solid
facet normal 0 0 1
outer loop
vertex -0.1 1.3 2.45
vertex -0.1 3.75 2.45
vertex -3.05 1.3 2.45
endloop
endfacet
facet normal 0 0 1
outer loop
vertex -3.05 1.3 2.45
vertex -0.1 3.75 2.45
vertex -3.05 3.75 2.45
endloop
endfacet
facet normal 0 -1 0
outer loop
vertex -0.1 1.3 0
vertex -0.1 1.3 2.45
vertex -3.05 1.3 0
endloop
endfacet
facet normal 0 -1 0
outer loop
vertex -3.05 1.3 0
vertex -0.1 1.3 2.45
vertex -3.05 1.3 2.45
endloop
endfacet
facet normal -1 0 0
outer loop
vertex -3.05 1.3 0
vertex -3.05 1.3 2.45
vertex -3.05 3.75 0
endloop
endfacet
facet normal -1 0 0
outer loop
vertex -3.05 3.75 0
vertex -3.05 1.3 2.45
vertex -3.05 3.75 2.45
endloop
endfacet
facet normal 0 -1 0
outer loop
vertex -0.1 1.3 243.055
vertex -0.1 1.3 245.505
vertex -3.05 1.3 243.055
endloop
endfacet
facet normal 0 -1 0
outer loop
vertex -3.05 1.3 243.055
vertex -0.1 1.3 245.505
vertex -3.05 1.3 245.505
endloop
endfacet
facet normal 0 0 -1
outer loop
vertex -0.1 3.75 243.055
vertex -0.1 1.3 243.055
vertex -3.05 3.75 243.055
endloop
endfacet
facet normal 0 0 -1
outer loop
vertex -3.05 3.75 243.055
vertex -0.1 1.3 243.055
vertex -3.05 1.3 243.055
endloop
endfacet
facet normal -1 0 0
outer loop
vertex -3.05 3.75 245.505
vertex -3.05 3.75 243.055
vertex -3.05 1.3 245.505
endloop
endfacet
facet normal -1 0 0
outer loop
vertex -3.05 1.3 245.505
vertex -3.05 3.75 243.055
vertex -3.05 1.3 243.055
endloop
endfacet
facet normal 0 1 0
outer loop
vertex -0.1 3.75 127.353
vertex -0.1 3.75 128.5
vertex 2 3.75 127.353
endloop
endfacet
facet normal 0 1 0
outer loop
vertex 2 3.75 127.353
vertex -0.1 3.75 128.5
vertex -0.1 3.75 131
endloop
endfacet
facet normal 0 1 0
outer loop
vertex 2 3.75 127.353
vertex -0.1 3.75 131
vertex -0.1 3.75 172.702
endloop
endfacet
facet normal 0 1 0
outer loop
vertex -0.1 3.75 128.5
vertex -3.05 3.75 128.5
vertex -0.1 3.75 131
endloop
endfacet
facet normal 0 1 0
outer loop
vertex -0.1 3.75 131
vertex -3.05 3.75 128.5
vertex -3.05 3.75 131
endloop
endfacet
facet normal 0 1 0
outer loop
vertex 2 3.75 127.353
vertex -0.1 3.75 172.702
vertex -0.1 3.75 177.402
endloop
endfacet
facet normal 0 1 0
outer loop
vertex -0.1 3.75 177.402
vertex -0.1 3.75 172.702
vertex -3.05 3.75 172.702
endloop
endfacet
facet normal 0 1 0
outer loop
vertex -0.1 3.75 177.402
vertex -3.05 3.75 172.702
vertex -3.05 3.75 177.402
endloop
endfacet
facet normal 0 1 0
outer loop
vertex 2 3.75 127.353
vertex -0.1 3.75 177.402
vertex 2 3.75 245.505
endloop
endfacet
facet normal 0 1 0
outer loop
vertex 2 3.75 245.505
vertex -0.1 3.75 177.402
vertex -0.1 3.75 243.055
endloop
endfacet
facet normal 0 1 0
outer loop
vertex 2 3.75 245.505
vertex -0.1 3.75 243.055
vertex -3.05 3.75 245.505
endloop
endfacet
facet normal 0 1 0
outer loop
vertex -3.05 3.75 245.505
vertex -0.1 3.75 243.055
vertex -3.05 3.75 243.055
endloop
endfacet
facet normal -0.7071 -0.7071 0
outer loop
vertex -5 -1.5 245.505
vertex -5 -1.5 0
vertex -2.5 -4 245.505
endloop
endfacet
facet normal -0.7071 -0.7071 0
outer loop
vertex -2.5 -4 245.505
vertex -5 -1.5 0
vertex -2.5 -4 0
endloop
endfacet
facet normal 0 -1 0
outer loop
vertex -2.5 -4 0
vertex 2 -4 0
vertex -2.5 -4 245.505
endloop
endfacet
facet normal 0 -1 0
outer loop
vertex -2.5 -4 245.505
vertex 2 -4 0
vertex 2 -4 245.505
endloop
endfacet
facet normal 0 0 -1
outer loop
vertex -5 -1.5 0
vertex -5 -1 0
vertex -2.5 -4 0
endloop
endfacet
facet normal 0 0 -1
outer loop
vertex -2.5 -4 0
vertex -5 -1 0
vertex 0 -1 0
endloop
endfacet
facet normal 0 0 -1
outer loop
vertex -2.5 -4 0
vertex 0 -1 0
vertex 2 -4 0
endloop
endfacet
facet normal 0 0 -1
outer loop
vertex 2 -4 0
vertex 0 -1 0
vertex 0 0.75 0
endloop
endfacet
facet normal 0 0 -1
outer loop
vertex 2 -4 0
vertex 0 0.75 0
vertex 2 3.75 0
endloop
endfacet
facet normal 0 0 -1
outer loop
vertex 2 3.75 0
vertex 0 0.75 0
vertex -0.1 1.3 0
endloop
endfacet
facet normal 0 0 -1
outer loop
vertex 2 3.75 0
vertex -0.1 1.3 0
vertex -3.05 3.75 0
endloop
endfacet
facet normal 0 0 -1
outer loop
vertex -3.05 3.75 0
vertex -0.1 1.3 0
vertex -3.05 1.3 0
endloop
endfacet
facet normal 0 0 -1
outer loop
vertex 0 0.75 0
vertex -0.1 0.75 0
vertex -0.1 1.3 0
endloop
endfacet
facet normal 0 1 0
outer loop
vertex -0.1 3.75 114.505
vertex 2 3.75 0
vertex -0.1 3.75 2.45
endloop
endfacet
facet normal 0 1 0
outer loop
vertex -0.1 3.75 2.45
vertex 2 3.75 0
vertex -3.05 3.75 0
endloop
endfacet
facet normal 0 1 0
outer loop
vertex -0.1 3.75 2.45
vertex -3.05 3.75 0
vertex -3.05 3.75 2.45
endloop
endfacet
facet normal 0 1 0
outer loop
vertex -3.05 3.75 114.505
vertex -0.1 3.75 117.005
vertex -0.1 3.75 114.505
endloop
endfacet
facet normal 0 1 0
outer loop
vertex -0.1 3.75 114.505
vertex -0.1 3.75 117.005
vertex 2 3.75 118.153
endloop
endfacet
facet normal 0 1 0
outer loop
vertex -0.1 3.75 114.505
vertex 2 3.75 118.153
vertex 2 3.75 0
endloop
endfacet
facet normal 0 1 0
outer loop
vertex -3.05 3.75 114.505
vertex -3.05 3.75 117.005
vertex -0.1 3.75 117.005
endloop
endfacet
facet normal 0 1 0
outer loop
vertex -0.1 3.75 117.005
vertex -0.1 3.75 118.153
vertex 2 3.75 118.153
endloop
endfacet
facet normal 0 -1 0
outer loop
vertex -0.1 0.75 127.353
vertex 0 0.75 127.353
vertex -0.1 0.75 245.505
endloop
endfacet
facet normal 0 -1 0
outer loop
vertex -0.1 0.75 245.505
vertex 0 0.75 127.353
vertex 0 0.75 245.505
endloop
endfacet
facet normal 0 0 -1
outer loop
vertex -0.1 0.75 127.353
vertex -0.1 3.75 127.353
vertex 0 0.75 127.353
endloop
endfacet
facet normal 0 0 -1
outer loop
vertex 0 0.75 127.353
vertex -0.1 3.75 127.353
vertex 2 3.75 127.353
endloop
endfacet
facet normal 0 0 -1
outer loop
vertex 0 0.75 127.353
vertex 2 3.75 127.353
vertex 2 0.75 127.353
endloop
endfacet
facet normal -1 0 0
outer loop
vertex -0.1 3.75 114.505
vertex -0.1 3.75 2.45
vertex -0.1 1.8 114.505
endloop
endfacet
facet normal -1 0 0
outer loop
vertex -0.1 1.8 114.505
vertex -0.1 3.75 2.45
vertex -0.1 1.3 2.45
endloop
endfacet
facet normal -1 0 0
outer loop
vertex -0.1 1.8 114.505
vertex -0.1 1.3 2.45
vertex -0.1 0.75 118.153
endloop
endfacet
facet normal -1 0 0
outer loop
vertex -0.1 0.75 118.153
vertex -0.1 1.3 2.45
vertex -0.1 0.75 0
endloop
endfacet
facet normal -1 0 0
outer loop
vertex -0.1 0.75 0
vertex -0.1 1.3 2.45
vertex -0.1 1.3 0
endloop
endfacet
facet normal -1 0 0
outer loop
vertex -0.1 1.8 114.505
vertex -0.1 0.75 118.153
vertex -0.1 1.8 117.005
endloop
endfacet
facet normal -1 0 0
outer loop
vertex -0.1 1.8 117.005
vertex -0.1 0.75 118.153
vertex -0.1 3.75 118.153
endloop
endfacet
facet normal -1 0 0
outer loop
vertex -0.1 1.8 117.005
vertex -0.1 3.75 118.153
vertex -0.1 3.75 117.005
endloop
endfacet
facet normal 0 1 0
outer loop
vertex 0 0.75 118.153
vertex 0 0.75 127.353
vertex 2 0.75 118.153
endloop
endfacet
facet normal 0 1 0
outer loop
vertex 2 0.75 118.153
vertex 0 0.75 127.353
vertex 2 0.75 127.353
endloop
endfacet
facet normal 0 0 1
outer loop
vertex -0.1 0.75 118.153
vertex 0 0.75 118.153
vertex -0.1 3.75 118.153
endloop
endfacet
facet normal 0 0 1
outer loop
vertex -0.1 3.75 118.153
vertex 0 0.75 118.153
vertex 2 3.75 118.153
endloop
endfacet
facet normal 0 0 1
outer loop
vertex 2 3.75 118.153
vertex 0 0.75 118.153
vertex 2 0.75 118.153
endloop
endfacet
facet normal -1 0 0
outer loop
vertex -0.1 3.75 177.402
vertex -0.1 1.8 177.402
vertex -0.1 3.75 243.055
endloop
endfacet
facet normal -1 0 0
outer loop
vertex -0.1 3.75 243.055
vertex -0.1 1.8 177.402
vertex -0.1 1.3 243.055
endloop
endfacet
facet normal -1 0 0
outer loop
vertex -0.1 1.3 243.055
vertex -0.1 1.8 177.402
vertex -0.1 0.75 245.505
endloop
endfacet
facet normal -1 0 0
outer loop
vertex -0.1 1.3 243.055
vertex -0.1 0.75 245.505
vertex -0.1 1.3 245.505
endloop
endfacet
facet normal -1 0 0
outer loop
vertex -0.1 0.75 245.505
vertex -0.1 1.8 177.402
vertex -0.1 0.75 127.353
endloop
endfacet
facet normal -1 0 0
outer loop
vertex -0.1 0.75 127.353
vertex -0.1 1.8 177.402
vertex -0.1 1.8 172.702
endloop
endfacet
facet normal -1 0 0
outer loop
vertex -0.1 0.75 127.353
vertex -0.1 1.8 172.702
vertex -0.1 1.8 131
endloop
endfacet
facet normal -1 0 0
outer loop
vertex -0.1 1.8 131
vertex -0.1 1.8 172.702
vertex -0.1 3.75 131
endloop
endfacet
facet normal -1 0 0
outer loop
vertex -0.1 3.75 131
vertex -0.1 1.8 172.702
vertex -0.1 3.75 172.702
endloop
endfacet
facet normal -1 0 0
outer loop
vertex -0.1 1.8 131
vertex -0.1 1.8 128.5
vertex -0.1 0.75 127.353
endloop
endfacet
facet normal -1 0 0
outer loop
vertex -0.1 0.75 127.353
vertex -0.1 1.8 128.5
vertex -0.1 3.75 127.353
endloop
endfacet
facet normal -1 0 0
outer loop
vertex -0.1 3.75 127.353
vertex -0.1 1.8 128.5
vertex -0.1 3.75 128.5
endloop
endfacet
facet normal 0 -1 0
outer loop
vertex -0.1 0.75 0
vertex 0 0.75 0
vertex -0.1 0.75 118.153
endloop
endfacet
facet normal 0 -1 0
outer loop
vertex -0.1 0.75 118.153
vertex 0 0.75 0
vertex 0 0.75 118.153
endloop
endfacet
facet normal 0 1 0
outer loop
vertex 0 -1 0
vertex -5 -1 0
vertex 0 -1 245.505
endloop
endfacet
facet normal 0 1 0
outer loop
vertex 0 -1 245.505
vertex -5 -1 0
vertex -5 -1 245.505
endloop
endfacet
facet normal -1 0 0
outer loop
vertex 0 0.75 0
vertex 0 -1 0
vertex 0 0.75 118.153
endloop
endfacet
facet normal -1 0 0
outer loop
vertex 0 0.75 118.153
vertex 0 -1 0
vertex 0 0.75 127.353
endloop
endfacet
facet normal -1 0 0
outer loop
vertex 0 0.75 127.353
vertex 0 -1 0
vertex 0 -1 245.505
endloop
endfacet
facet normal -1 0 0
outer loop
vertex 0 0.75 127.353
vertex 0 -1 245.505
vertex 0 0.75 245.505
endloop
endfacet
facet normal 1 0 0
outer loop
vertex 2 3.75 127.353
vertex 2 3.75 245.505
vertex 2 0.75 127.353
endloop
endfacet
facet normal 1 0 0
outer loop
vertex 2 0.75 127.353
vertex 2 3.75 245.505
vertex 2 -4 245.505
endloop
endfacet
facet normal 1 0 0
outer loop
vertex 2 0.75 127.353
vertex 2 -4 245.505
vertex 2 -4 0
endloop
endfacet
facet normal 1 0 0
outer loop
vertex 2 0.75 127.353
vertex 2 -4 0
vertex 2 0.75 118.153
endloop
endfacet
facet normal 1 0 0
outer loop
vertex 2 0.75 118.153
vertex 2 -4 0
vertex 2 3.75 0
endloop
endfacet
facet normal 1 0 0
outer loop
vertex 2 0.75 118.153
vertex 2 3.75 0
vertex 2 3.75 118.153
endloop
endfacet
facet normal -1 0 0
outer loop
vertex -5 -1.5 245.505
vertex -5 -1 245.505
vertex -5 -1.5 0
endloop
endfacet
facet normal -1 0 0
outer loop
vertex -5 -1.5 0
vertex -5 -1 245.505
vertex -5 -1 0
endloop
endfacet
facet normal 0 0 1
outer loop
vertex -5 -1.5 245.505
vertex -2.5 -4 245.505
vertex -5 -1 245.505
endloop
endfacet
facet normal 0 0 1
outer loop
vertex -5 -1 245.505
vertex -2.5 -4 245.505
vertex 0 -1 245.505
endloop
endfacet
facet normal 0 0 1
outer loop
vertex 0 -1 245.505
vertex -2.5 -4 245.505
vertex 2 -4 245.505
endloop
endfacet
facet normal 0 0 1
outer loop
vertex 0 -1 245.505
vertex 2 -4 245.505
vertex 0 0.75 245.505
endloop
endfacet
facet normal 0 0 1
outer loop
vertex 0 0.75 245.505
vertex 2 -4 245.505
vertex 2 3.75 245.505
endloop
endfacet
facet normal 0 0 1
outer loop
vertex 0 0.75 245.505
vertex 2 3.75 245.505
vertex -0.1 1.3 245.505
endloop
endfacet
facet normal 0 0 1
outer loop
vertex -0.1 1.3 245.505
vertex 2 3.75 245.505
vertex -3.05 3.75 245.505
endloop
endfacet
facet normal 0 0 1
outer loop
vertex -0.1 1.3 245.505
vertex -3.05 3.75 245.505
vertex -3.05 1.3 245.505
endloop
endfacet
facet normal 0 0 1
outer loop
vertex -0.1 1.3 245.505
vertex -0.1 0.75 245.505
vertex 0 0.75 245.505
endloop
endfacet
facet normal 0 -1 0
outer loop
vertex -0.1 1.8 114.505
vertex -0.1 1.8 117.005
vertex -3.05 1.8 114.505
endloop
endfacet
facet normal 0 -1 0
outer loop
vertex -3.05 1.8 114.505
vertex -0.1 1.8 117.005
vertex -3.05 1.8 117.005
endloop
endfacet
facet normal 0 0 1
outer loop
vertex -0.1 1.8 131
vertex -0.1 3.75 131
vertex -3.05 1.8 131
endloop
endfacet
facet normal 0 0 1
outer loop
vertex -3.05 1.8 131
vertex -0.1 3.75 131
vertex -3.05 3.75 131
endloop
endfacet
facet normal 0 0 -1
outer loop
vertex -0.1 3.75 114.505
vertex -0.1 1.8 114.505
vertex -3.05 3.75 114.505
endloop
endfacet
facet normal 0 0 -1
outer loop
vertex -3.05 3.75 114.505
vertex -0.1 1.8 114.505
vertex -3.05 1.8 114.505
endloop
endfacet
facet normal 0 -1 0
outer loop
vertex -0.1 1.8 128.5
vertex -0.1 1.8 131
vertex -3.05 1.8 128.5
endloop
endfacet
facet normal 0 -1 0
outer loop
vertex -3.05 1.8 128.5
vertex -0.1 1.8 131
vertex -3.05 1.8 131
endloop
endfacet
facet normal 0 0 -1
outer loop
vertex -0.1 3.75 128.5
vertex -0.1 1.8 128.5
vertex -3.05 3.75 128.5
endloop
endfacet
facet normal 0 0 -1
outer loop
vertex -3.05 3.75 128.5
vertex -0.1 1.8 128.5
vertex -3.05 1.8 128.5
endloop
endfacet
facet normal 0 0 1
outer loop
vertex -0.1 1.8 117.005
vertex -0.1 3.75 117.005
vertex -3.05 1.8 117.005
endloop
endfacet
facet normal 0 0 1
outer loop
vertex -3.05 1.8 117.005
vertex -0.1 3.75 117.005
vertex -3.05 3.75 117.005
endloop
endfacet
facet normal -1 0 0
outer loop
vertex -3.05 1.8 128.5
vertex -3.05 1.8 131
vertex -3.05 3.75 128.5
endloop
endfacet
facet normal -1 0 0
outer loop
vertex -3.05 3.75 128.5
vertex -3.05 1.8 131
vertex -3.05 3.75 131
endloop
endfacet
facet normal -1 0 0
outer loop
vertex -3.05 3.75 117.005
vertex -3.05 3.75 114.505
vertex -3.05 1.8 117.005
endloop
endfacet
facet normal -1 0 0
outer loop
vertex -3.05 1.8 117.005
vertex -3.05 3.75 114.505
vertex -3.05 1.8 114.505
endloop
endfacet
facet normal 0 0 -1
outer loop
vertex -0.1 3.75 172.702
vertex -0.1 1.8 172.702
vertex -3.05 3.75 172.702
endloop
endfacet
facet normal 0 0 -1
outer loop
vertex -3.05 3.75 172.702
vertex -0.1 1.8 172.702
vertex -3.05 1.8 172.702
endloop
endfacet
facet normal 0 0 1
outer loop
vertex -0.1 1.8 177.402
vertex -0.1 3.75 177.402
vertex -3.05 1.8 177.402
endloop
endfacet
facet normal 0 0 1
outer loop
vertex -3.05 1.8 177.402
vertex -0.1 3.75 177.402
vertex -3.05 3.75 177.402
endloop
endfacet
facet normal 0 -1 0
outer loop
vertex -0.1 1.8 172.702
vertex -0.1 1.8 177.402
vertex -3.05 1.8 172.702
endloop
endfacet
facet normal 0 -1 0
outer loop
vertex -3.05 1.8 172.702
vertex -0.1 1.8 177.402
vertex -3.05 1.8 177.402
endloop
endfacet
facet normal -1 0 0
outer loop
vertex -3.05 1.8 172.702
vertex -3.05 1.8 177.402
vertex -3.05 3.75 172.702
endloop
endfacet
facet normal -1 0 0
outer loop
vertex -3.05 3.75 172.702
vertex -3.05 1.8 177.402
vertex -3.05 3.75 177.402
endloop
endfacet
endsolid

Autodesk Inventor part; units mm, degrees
ref_plane "YZ Plane" through (0, 0, 0) normal (1, 0, 0) x (0, 1, 0)
ref_plane "XZ Plane" through (0, 0, 0) normal (0, 1, 0) x (-1, 0, 0)
ref_plane "XY Plane" through (0, 0, 0) normal (0, 0, 1) x (1, 0, 0)
sketch "Sketch1" plane through (0, 0, 0) normal (0, 0, 1) x (1, 0, 0)
  line L0 (0, 3.75) -> (2, 3.75)
  line L1 (2, 3.75) -> (2, -4)
  line L2 (2, -4) -> (0, -4)
  line L3 (0, -4) -> (0, 3.75) construction
  line L4 (0, -4) -> (-5, -4)
  line L5 (-5, -4) -> (-5, -1)
  line L6 (-5, -1) -> (0, -1)
  line L7 (0, 3.75) -> (-1, 3.75)
  line L8 (-1, 3.75) -> (-1, 0.75)
  line L9 (-1, 0.75) -> (0, 0.75)
  line L10 (0, 0.75) -> (0, 3.75) construction
  line L11 (0, 0.75) -> (0, -1)
  point P0 (0, 0)
  point P1 (0, -0.125)
  point P2 (1, 3.75)
  dimension "d0" = 4
  dimension "d1" = 2
  dimension "d5" = 5
  dimension "d6" = 1.75
  dimension "d7" = 3
  dimension "d11" = 3
  dimension "d12" = 3
extrude "Extrusion1" add sketch "Sketch1" along normal blind 245.505
sketch "Sketch2" plane through (-1, 3.75, 245.505) normal (0, 1, 0) x (1, 0, 0)
  line L0 (3, 245.505) -> (3, 0) construction
  line L1 (3, 122.7525) -> (1, 122.7525) construction
  line L2 (1, 245.505) -> (1, 0) construction
  line L3 (3, 127.3525) -> (1, 127.3525)
  line L4 (1, 127.3525) -> (1, 118.1525) construction
  line L5 (1, 118.1525) -> (3, 118.1525) construction
  line L6 (3, 118.1525) -> (3, 127.3525)
  line L7 (3, 122.7525) -> (1, 122.7525) construction
  line L8 (3, 118.1525) -> (1, 118.1525)
  line L9 (1, 127.3525) -> (0, 127.3525)
  line L10 (0, 245.505) -> (0, 0) projected
  line L11 (0, 127.3525) -> (0, 118.1525)
  line L12 (0, 118.1525) -> (1, 118.1525)
  point P0 (0, 118.1525)
  dimension "d13" = 9.2
extrude "Extrusion2" cut sketch "Sketch2" against normal up to surface (3 mm away)
sketch "Sketch3" plane through (-1, 0.75, 0) normal (-1, 0, 0) x (0, 0, 1)
  line L0 (118.1525, 0) -> (118.1525, 3) projected
  line L1 (0, 3) -> (118.1525, 3) projected
  line L2 (0, 3) -> (0, 0) projected
  line L3 (0, 0) -> (118.1525, 0) projected
  line L4 (127.3525, 3) -> (127.3525, 0) projected
  line L5 (127.3525, 0) -> (245.505, 0) projected
  line L6 (245.505, 3) -> (245.505, 0) projected
  line L7 (127.3525, 3) -> (245.505, 3) projected
  point P0 (0, -0.75)
extrude "Extrusion3" cut sketch "Sketch3" against normal blind 0.9
chamfer "Chamfer1" distance 2.5 angle 45 1 edges at (-5, -4, 122.7525)
sketch "Sketch4" plane through (-0.1, 0.75, 0) normal (-1, 0, 0) x (0, 0, 1)
  line L0 (0, 3) -> (118.1525, 3) projected
  line L1 (0, 3) -> (2.45, 3)
  line L2 (2.45, 3) -> (2.45, 0.55)
  line L3 (2.45, 0.55) -> (0, 0.55)
  line L4 (0, 0.55) -> (0, 3)
  line L5 (127.3525, 3) -> (245.505, 3) projected
  line L6 (245.505, 3) -> (243.055, 3)
  line L7 (243.055, 3) -> (243.055, 0.55)
  line L8 (243.055, 0.55) -> (245.505, 0.55)
  line L9 (245.505, 0.55) -> (245.505, 3)
  line L10 (0, 3) -> (2.45, 3)
  line L11 (2.45, 3) -> (2.45, 0.55)
  line L12 (245.505, 3) -> (243.055, 3)
  line L13 (243.055, 3) -> (243.055, 0.55)
  point P0 (0, -0.75)
  dimension "d21" = 2.45
  dimension "d22" = 2.45
  dimension "d23" = 2.45
  dimension "d24" = 2.45
extrude "Extrusion4" add sketch "Sketch4" along normal blind 2.95
sketch "Sketch5" plane through (-0.1, 0.75, 0) normal (-1, 0, 0) x (0, 0, 1)
  line L0 (114.505, 2.85) -> (114.505, 0.85) construction
  line L1 (131, 0.85) -> (131, 2.85) construction
  line L2 (131, 2.85) -> (131, 3) construction
  line L3 (127.3525, 3) -> (243.055, 3) construction
  line L4 (114.505, 2.85) -> (114.505, 3) construction
  line L5 (114.505, 3) -> (117.005, 3)
  line L6 (117.005, 3) -> (117.005, 1.05)
  line L7 (117.005, 1.05) -> (114.505, 1.05)
  line L8 (114.505, 1.05) -> (114.505, 3)
  line L9 (131, 3) -> (128.5, 3)
  line L10 (128.5, 3) -> (128.5, 1.05)
  line L11 (128.5, 1.05) -> (131, 1.05)
  line L12 (131, 1.05) -> (131, 3)
  line L13 (2.45, 3) -> (118.1525, 3) projected
  point P0 (0, -0.75)
  dimension "d27" = 2.5
  dimension "d28" = 2.5
  dimension "d29" = 1.95
extrude "Extrusion5" add sketch "Sketch5" along normal blind 2.95
sketch "Sketch6" plane through (-0.1, 0.75, 0) normal (-1, 0, 0) x (0, 0, 1)
  line L0 (172.5025, 2.85) -> (172.5025, 0.85) construction
  line L1 (177.6025, 0.85) -> (177.6025, 2.85) construction
  line L2 (177.6025, 2.85) -> (177.6025, 3) construction
  line L3 (131, 3) -> (243.055, 3) construction
  line L4 (172.5025, 2.85) -> (172.5025, 3) construction
  line L5 (172.7025, 3) -> (177.4025, 3)
  line L6 (177.4025, 3) -> (177.4025, 1.05)
  line L7 (177.4025, 1.05) -> (172.7025, 1.05)
  line L8 (172.7025, 1.05) -> (172.7025, 3)
  point P0 (0, -0.75)
  dimension "d32" = 0.2
  dimension "d33" = 0.2
  dimension "d34" = 1.95
extrude "Extrusion6" add sketch "Sketch6" along normal blind 2.95
properties part number "Top Case Rail" material "PET Plastic"
